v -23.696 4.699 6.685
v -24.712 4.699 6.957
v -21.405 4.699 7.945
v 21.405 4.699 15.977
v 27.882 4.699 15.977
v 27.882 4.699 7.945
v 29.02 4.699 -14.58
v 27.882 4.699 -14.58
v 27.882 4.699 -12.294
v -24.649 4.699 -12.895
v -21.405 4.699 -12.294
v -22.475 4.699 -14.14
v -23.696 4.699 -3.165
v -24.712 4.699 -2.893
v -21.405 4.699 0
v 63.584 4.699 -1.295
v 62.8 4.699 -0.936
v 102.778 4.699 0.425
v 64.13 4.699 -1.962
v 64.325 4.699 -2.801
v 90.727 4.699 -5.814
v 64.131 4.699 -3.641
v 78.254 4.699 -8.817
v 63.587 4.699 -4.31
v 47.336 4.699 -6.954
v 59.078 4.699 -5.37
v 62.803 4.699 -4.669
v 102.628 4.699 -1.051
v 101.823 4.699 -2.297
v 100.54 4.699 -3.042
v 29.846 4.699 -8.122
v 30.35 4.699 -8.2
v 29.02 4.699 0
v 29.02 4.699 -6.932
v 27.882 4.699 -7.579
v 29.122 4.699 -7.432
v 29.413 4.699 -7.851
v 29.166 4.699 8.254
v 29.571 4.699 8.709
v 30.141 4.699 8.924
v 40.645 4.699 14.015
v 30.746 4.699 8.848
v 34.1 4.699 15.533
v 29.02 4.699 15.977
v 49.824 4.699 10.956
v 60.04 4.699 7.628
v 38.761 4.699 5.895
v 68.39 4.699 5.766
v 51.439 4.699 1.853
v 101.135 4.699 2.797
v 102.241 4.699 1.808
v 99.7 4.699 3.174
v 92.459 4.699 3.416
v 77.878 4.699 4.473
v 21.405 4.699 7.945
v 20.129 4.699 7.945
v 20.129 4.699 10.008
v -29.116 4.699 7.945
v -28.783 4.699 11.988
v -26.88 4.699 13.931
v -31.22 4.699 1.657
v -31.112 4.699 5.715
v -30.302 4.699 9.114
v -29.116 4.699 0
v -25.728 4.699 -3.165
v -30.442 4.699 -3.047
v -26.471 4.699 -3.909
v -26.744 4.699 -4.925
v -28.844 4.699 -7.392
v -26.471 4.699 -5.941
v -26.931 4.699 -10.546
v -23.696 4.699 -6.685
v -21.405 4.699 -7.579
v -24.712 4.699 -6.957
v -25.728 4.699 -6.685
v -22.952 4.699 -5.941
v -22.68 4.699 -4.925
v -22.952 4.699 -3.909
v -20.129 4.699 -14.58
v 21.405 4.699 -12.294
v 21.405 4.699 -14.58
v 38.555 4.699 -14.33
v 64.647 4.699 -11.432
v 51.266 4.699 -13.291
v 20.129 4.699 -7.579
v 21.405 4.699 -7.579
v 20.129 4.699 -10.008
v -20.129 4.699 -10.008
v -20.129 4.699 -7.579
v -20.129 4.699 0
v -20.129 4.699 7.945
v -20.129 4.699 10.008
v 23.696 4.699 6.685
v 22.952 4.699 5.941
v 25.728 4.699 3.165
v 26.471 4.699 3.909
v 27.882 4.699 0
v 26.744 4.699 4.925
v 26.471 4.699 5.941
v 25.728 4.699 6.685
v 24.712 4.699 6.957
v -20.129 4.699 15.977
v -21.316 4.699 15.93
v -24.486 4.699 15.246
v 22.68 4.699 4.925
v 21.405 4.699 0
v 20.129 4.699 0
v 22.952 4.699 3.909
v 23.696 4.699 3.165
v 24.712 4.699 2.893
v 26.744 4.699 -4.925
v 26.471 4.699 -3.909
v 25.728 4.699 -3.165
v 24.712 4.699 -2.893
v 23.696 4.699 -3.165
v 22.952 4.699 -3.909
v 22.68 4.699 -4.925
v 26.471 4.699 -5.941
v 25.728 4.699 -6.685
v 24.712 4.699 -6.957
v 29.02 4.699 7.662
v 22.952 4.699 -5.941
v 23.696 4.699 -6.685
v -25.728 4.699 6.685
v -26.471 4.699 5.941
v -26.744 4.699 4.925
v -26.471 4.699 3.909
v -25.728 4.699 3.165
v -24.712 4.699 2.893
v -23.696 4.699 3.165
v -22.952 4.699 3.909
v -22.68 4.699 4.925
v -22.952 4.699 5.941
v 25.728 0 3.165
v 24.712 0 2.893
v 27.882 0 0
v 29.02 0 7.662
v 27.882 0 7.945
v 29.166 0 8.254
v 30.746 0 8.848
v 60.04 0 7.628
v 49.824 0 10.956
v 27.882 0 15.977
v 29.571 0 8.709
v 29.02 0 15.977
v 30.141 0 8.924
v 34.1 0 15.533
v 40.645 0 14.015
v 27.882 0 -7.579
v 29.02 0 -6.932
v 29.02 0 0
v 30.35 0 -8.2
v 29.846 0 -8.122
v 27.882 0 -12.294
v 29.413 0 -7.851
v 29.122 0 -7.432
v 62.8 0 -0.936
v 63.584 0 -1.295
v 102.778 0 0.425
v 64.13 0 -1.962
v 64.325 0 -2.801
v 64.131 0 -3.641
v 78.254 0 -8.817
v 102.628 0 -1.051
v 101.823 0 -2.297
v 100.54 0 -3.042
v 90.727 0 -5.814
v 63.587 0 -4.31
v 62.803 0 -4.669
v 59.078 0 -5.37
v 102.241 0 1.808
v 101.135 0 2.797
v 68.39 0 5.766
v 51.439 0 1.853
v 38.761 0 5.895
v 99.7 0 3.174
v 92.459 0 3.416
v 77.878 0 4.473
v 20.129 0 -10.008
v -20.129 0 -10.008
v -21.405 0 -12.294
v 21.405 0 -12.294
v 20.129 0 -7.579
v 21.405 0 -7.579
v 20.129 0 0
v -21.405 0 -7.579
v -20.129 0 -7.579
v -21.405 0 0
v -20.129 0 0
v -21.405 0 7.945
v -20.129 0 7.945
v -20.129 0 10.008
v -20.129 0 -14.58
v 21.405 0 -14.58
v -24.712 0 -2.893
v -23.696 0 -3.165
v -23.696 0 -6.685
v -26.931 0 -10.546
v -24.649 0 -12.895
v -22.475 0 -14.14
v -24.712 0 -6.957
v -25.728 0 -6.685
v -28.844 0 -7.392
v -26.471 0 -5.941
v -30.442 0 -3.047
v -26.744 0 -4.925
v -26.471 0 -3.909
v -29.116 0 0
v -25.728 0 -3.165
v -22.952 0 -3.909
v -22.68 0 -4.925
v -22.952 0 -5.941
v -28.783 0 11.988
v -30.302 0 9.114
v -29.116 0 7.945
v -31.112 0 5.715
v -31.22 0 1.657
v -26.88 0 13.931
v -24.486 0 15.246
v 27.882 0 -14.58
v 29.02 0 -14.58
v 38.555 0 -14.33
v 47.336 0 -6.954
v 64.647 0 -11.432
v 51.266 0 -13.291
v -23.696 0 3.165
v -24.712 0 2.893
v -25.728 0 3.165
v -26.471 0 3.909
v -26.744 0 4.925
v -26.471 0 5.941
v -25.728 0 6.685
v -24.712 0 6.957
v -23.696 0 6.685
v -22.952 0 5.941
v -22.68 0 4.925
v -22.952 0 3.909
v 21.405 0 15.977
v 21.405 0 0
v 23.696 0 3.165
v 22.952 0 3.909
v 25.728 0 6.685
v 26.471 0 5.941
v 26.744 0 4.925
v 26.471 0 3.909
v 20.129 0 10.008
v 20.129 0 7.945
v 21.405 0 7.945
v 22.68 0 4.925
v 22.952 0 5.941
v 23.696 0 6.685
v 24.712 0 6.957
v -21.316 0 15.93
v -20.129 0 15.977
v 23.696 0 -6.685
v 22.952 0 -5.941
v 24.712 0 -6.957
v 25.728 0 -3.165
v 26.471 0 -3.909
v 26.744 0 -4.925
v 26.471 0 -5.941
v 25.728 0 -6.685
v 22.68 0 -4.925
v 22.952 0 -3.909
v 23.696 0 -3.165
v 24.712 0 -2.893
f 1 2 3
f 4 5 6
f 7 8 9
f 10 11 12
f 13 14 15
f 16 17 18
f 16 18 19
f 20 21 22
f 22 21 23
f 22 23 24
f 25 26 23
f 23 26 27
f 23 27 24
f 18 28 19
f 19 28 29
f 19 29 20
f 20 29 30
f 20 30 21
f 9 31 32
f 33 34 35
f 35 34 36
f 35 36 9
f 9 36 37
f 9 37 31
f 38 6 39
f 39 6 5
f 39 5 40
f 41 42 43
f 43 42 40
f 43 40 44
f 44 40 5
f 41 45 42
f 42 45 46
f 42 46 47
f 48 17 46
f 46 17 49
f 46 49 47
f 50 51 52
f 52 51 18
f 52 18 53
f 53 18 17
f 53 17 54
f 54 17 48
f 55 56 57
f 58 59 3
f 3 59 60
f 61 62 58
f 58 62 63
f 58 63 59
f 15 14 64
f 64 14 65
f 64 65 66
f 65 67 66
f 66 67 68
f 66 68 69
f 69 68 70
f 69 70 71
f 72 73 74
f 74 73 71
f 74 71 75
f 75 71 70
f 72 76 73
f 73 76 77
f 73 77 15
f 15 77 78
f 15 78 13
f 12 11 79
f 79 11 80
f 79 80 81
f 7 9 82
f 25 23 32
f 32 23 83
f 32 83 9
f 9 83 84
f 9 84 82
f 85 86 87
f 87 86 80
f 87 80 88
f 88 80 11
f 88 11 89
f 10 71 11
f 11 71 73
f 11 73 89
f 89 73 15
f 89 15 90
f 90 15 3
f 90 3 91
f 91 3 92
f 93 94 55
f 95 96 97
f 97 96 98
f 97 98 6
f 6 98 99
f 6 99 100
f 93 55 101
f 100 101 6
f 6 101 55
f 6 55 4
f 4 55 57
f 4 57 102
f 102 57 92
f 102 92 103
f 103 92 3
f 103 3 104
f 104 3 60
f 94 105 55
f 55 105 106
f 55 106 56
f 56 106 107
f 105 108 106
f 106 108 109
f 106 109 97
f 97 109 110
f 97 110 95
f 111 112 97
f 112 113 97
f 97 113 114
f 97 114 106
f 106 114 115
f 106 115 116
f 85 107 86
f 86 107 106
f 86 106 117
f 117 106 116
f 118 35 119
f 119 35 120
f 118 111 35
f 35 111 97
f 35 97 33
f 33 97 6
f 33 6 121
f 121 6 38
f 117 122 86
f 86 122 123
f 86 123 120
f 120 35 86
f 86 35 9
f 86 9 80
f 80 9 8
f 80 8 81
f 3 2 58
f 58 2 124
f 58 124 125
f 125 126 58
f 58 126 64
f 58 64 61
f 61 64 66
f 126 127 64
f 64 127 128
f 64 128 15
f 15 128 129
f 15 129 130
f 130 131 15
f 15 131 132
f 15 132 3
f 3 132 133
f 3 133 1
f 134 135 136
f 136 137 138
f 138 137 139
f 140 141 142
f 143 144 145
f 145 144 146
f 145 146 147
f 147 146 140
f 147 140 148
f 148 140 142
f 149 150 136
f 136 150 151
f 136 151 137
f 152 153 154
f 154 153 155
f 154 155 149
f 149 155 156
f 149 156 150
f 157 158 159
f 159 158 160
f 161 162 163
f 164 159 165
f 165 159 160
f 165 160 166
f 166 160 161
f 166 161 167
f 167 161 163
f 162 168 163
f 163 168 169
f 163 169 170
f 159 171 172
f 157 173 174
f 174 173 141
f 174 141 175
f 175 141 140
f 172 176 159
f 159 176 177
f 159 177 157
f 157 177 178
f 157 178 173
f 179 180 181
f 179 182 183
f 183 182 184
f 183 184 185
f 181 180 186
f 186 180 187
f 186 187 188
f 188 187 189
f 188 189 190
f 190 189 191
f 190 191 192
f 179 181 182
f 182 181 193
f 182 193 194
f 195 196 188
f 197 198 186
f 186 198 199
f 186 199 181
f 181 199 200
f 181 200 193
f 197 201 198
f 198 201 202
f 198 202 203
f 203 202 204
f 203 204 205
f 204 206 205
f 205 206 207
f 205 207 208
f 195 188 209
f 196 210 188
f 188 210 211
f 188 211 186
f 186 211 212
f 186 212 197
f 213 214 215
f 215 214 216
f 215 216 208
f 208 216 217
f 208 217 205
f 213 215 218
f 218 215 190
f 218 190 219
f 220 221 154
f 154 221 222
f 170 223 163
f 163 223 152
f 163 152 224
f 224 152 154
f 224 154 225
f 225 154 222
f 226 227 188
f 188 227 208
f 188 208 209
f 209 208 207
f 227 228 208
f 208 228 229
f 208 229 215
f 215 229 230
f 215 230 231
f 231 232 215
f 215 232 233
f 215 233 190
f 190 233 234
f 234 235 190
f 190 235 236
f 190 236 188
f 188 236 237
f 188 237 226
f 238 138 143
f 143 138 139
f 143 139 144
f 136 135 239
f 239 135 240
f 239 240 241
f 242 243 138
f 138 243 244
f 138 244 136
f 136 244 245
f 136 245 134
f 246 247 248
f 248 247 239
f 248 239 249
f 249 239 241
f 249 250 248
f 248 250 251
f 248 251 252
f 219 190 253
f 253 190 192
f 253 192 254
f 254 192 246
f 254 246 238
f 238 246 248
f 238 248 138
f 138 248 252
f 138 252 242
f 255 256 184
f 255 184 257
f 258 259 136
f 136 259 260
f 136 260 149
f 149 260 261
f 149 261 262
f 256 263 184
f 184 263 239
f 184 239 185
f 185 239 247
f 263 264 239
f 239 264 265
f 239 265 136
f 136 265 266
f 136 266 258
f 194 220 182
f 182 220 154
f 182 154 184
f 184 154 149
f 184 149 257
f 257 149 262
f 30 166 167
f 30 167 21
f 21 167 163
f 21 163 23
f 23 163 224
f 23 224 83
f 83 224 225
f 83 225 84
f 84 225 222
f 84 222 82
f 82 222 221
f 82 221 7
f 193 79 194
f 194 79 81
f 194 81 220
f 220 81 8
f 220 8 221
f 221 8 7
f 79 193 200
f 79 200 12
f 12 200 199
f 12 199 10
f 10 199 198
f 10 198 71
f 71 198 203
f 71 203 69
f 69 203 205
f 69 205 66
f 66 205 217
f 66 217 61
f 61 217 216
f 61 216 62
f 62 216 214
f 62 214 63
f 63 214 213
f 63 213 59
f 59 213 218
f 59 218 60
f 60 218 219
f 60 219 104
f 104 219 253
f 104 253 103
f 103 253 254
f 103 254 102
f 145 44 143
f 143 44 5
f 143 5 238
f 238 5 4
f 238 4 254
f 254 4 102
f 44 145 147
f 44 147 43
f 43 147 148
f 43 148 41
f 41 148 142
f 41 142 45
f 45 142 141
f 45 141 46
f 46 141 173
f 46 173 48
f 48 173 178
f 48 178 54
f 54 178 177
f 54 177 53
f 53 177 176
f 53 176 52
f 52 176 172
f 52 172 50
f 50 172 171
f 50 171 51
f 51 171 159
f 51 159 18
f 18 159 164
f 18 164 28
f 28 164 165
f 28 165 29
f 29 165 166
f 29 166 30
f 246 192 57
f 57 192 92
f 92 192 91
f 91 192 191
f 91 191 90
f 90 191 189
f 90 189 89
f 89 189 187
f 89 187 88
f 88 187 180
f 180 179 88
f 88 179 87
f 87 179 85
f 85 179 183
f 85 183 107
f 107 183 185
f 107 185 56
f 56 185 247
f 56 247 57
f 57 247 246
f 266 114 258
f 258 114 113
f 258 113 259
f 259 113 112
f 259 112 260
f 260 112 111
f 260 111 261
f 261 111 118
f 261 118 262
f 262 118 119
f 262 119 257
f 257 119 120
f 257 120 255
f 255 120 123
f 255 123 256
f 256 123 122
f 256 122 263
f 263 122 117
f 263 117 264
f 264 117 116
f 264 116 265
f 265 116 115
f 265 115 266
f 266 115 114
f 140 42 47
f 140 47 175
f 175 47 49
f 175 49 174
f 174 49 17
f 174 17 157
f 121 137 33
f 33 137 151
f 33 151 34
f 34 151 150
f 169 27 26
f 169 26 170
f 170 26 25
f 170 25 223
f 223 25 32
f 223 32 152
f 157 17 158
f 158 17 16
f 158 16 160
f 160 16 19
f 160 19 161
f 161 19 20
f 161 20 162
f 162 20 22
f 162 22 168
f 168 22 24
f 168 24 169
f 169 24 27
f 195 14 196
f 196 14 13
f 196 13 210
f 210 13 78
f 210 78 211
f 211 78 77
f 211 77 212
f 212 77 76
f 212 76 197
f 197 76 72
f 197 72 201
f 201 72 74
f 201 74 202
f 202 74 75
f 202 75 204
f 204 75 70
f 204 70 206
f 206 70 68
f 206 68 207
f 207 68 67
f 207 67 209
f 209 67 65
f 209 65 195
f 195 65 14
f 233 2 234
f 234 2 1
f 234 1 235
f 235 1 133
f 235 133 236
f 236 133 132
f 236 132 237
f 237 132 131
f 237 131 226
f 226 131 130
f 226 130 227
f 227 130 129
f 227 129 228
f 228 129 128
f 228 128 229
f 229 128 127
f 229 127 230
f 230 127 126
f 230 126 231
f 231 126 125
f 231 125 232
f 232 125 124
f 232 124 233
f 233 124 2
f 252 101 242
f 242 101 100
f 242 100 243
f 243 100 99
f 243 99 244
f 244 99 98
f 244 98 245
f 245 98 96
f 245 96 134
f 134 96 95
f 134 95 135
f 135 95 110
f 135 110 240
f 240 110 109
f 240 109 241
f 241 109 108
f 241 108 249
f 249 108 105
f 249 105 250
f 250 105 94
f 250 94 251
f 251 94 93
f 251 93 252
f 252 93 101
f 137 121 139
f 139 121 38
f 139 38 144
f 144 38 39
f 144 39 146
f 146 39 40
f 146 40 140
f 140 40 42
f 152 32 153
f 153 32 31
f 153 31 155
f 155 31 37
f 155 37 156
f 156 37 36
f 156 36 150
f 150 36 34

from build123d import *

# Parameters (mm, degrees)
BOSS_EXTRUDE1_DEPTH = 4.699
SKETCH2_R           = 1.905
SKETCH2_R_2         = 2.032
SKETCH2_W           = 40.259
SKETCH2_H           = 20.0152
CUT_EXTRUDE1_DEPTH  = 105.14657371
FILLET1_R           = 1.27


with BuildPart() as part:
    # Sketch1 → Boss-Extrude1 (new body)
    with BuildSketch(Plane(origin=(0, 0, 0), x_dir=(1, 0, 0), z_dir=(0, 1, 0))):
        with BuildLine():
            Line((-20.1295, 14.5796), (29.0195, 14.5796))
            add(Edge.make_bspline(
                [(29.0195, 14.5796), (61.676259281, 14.5796), (92.626496887, 5.406179728), (100.540261174, 3.042166683)],
                knots=[0, 0, 0, 0, 1, 1, 1, 1], degree=3))
            ThreePointArc((100.540261174, 3.042166683), (102.777881706, -0.425331821), (99.699916451, -3.174262779))
            add(Edge.make_bspline(
                [(29.0195, -15.9766), (36.752411566, -15.9766), (47.448783559, -11.662139755), (61.563248496, -6.964298313), (74.754433056, -4.344440996), (91.245915547, -3.356476028), (99.699916451, -3.174262779)],
                knots=[0, 0, 0, 0, 0.316402814, 0.381996868, 0.65594054, 1, 1, 1, 1], degree=3))
            Line((29.0195, -15.9766), (-20.1295, -15.9766))
            add(Edge.make_bspline(
                [(-20.1295, 14.5796), (-25.650459674, 14.5796), (-34.705495366, -0.225155417), (-29.383489197, -15.9766), (-20.1295, -15.9766)],
                knots=[0, 0, 0, 0, 0.484878873, 1, 1, 1, 1], degree=3))
        make_face()
    extrude(amount=BOSS_EXTRUDE1_DEPTH)

    # Sketch2 → Cut-Extrude1 (cut, through all)
    with BuildSketch(Plane(origin=(0, 4.699, 0), x_dir=(1, 0, 0), z_dir=(0, 1, 0))):
        with Locations((62.4205, 2.803132377)):
            Circle(SKETCH2_R)
        with Locations(Location((-24.71166, 4.92506, 0), (0, 0, 270))):
            Circle(SKETCH2_R_2)
        with Locations(Location((-24.71166, -4.92506, 0), (0, 0, 270))):
            Circle(SKETCH2_R_2)
        with Locations(Location((24.71166, -4.92506, 0), (0, 0, 270))):
            Circle(SKETCH2_R_2)
        with Locations(Location((24.71166, 4.92506, 0), (0, 0, 270))):
            Circle(SKETCH2_R_2)
        with BuildLine():
            Line((29.0195, 0), (29.0195, 8.262060115))
            add(Edge.make_bspline(
                [(29.0195, 8.262060115), (49.82184103, 7.331297412), (62.803182548, 4.669299323)],
                knots=[0, 0, 0, 1, 1, 1], degree=2))
            ThreePointArc((62.803182548, 4.669299323), (64.32549921, 2.801397362), (62.799782619, 0.936271457))
            add(Edge.make_bspline(
                [(62.799782619, 0.936271457), (48.06851018, -2.056621868), (29.0195, -9.517939885)],
                knots=[0, 0, 0, 1, 1, 1], degree=2))
            Line((29.0195, -9.517939885), (29.0195, 0))
        make_face()
        Rectangle(SKETCH2_W, SKETCH2_H)
    extrude(amount=-CUT_EXTRUDE1_DEPTH, mode=Mode.SUBTRACT)

    # Fillet1
    fillet1_edges = [part.edges().sort_by_distance(p)[0] for p in [
        (29.0195, 2.3495, 9.517939885),
        (29.0195, 2.3495, -8.262060115),
    ]]
    fillet(fillet1_edges, radius=FILLET1_R)


solid = part.part
